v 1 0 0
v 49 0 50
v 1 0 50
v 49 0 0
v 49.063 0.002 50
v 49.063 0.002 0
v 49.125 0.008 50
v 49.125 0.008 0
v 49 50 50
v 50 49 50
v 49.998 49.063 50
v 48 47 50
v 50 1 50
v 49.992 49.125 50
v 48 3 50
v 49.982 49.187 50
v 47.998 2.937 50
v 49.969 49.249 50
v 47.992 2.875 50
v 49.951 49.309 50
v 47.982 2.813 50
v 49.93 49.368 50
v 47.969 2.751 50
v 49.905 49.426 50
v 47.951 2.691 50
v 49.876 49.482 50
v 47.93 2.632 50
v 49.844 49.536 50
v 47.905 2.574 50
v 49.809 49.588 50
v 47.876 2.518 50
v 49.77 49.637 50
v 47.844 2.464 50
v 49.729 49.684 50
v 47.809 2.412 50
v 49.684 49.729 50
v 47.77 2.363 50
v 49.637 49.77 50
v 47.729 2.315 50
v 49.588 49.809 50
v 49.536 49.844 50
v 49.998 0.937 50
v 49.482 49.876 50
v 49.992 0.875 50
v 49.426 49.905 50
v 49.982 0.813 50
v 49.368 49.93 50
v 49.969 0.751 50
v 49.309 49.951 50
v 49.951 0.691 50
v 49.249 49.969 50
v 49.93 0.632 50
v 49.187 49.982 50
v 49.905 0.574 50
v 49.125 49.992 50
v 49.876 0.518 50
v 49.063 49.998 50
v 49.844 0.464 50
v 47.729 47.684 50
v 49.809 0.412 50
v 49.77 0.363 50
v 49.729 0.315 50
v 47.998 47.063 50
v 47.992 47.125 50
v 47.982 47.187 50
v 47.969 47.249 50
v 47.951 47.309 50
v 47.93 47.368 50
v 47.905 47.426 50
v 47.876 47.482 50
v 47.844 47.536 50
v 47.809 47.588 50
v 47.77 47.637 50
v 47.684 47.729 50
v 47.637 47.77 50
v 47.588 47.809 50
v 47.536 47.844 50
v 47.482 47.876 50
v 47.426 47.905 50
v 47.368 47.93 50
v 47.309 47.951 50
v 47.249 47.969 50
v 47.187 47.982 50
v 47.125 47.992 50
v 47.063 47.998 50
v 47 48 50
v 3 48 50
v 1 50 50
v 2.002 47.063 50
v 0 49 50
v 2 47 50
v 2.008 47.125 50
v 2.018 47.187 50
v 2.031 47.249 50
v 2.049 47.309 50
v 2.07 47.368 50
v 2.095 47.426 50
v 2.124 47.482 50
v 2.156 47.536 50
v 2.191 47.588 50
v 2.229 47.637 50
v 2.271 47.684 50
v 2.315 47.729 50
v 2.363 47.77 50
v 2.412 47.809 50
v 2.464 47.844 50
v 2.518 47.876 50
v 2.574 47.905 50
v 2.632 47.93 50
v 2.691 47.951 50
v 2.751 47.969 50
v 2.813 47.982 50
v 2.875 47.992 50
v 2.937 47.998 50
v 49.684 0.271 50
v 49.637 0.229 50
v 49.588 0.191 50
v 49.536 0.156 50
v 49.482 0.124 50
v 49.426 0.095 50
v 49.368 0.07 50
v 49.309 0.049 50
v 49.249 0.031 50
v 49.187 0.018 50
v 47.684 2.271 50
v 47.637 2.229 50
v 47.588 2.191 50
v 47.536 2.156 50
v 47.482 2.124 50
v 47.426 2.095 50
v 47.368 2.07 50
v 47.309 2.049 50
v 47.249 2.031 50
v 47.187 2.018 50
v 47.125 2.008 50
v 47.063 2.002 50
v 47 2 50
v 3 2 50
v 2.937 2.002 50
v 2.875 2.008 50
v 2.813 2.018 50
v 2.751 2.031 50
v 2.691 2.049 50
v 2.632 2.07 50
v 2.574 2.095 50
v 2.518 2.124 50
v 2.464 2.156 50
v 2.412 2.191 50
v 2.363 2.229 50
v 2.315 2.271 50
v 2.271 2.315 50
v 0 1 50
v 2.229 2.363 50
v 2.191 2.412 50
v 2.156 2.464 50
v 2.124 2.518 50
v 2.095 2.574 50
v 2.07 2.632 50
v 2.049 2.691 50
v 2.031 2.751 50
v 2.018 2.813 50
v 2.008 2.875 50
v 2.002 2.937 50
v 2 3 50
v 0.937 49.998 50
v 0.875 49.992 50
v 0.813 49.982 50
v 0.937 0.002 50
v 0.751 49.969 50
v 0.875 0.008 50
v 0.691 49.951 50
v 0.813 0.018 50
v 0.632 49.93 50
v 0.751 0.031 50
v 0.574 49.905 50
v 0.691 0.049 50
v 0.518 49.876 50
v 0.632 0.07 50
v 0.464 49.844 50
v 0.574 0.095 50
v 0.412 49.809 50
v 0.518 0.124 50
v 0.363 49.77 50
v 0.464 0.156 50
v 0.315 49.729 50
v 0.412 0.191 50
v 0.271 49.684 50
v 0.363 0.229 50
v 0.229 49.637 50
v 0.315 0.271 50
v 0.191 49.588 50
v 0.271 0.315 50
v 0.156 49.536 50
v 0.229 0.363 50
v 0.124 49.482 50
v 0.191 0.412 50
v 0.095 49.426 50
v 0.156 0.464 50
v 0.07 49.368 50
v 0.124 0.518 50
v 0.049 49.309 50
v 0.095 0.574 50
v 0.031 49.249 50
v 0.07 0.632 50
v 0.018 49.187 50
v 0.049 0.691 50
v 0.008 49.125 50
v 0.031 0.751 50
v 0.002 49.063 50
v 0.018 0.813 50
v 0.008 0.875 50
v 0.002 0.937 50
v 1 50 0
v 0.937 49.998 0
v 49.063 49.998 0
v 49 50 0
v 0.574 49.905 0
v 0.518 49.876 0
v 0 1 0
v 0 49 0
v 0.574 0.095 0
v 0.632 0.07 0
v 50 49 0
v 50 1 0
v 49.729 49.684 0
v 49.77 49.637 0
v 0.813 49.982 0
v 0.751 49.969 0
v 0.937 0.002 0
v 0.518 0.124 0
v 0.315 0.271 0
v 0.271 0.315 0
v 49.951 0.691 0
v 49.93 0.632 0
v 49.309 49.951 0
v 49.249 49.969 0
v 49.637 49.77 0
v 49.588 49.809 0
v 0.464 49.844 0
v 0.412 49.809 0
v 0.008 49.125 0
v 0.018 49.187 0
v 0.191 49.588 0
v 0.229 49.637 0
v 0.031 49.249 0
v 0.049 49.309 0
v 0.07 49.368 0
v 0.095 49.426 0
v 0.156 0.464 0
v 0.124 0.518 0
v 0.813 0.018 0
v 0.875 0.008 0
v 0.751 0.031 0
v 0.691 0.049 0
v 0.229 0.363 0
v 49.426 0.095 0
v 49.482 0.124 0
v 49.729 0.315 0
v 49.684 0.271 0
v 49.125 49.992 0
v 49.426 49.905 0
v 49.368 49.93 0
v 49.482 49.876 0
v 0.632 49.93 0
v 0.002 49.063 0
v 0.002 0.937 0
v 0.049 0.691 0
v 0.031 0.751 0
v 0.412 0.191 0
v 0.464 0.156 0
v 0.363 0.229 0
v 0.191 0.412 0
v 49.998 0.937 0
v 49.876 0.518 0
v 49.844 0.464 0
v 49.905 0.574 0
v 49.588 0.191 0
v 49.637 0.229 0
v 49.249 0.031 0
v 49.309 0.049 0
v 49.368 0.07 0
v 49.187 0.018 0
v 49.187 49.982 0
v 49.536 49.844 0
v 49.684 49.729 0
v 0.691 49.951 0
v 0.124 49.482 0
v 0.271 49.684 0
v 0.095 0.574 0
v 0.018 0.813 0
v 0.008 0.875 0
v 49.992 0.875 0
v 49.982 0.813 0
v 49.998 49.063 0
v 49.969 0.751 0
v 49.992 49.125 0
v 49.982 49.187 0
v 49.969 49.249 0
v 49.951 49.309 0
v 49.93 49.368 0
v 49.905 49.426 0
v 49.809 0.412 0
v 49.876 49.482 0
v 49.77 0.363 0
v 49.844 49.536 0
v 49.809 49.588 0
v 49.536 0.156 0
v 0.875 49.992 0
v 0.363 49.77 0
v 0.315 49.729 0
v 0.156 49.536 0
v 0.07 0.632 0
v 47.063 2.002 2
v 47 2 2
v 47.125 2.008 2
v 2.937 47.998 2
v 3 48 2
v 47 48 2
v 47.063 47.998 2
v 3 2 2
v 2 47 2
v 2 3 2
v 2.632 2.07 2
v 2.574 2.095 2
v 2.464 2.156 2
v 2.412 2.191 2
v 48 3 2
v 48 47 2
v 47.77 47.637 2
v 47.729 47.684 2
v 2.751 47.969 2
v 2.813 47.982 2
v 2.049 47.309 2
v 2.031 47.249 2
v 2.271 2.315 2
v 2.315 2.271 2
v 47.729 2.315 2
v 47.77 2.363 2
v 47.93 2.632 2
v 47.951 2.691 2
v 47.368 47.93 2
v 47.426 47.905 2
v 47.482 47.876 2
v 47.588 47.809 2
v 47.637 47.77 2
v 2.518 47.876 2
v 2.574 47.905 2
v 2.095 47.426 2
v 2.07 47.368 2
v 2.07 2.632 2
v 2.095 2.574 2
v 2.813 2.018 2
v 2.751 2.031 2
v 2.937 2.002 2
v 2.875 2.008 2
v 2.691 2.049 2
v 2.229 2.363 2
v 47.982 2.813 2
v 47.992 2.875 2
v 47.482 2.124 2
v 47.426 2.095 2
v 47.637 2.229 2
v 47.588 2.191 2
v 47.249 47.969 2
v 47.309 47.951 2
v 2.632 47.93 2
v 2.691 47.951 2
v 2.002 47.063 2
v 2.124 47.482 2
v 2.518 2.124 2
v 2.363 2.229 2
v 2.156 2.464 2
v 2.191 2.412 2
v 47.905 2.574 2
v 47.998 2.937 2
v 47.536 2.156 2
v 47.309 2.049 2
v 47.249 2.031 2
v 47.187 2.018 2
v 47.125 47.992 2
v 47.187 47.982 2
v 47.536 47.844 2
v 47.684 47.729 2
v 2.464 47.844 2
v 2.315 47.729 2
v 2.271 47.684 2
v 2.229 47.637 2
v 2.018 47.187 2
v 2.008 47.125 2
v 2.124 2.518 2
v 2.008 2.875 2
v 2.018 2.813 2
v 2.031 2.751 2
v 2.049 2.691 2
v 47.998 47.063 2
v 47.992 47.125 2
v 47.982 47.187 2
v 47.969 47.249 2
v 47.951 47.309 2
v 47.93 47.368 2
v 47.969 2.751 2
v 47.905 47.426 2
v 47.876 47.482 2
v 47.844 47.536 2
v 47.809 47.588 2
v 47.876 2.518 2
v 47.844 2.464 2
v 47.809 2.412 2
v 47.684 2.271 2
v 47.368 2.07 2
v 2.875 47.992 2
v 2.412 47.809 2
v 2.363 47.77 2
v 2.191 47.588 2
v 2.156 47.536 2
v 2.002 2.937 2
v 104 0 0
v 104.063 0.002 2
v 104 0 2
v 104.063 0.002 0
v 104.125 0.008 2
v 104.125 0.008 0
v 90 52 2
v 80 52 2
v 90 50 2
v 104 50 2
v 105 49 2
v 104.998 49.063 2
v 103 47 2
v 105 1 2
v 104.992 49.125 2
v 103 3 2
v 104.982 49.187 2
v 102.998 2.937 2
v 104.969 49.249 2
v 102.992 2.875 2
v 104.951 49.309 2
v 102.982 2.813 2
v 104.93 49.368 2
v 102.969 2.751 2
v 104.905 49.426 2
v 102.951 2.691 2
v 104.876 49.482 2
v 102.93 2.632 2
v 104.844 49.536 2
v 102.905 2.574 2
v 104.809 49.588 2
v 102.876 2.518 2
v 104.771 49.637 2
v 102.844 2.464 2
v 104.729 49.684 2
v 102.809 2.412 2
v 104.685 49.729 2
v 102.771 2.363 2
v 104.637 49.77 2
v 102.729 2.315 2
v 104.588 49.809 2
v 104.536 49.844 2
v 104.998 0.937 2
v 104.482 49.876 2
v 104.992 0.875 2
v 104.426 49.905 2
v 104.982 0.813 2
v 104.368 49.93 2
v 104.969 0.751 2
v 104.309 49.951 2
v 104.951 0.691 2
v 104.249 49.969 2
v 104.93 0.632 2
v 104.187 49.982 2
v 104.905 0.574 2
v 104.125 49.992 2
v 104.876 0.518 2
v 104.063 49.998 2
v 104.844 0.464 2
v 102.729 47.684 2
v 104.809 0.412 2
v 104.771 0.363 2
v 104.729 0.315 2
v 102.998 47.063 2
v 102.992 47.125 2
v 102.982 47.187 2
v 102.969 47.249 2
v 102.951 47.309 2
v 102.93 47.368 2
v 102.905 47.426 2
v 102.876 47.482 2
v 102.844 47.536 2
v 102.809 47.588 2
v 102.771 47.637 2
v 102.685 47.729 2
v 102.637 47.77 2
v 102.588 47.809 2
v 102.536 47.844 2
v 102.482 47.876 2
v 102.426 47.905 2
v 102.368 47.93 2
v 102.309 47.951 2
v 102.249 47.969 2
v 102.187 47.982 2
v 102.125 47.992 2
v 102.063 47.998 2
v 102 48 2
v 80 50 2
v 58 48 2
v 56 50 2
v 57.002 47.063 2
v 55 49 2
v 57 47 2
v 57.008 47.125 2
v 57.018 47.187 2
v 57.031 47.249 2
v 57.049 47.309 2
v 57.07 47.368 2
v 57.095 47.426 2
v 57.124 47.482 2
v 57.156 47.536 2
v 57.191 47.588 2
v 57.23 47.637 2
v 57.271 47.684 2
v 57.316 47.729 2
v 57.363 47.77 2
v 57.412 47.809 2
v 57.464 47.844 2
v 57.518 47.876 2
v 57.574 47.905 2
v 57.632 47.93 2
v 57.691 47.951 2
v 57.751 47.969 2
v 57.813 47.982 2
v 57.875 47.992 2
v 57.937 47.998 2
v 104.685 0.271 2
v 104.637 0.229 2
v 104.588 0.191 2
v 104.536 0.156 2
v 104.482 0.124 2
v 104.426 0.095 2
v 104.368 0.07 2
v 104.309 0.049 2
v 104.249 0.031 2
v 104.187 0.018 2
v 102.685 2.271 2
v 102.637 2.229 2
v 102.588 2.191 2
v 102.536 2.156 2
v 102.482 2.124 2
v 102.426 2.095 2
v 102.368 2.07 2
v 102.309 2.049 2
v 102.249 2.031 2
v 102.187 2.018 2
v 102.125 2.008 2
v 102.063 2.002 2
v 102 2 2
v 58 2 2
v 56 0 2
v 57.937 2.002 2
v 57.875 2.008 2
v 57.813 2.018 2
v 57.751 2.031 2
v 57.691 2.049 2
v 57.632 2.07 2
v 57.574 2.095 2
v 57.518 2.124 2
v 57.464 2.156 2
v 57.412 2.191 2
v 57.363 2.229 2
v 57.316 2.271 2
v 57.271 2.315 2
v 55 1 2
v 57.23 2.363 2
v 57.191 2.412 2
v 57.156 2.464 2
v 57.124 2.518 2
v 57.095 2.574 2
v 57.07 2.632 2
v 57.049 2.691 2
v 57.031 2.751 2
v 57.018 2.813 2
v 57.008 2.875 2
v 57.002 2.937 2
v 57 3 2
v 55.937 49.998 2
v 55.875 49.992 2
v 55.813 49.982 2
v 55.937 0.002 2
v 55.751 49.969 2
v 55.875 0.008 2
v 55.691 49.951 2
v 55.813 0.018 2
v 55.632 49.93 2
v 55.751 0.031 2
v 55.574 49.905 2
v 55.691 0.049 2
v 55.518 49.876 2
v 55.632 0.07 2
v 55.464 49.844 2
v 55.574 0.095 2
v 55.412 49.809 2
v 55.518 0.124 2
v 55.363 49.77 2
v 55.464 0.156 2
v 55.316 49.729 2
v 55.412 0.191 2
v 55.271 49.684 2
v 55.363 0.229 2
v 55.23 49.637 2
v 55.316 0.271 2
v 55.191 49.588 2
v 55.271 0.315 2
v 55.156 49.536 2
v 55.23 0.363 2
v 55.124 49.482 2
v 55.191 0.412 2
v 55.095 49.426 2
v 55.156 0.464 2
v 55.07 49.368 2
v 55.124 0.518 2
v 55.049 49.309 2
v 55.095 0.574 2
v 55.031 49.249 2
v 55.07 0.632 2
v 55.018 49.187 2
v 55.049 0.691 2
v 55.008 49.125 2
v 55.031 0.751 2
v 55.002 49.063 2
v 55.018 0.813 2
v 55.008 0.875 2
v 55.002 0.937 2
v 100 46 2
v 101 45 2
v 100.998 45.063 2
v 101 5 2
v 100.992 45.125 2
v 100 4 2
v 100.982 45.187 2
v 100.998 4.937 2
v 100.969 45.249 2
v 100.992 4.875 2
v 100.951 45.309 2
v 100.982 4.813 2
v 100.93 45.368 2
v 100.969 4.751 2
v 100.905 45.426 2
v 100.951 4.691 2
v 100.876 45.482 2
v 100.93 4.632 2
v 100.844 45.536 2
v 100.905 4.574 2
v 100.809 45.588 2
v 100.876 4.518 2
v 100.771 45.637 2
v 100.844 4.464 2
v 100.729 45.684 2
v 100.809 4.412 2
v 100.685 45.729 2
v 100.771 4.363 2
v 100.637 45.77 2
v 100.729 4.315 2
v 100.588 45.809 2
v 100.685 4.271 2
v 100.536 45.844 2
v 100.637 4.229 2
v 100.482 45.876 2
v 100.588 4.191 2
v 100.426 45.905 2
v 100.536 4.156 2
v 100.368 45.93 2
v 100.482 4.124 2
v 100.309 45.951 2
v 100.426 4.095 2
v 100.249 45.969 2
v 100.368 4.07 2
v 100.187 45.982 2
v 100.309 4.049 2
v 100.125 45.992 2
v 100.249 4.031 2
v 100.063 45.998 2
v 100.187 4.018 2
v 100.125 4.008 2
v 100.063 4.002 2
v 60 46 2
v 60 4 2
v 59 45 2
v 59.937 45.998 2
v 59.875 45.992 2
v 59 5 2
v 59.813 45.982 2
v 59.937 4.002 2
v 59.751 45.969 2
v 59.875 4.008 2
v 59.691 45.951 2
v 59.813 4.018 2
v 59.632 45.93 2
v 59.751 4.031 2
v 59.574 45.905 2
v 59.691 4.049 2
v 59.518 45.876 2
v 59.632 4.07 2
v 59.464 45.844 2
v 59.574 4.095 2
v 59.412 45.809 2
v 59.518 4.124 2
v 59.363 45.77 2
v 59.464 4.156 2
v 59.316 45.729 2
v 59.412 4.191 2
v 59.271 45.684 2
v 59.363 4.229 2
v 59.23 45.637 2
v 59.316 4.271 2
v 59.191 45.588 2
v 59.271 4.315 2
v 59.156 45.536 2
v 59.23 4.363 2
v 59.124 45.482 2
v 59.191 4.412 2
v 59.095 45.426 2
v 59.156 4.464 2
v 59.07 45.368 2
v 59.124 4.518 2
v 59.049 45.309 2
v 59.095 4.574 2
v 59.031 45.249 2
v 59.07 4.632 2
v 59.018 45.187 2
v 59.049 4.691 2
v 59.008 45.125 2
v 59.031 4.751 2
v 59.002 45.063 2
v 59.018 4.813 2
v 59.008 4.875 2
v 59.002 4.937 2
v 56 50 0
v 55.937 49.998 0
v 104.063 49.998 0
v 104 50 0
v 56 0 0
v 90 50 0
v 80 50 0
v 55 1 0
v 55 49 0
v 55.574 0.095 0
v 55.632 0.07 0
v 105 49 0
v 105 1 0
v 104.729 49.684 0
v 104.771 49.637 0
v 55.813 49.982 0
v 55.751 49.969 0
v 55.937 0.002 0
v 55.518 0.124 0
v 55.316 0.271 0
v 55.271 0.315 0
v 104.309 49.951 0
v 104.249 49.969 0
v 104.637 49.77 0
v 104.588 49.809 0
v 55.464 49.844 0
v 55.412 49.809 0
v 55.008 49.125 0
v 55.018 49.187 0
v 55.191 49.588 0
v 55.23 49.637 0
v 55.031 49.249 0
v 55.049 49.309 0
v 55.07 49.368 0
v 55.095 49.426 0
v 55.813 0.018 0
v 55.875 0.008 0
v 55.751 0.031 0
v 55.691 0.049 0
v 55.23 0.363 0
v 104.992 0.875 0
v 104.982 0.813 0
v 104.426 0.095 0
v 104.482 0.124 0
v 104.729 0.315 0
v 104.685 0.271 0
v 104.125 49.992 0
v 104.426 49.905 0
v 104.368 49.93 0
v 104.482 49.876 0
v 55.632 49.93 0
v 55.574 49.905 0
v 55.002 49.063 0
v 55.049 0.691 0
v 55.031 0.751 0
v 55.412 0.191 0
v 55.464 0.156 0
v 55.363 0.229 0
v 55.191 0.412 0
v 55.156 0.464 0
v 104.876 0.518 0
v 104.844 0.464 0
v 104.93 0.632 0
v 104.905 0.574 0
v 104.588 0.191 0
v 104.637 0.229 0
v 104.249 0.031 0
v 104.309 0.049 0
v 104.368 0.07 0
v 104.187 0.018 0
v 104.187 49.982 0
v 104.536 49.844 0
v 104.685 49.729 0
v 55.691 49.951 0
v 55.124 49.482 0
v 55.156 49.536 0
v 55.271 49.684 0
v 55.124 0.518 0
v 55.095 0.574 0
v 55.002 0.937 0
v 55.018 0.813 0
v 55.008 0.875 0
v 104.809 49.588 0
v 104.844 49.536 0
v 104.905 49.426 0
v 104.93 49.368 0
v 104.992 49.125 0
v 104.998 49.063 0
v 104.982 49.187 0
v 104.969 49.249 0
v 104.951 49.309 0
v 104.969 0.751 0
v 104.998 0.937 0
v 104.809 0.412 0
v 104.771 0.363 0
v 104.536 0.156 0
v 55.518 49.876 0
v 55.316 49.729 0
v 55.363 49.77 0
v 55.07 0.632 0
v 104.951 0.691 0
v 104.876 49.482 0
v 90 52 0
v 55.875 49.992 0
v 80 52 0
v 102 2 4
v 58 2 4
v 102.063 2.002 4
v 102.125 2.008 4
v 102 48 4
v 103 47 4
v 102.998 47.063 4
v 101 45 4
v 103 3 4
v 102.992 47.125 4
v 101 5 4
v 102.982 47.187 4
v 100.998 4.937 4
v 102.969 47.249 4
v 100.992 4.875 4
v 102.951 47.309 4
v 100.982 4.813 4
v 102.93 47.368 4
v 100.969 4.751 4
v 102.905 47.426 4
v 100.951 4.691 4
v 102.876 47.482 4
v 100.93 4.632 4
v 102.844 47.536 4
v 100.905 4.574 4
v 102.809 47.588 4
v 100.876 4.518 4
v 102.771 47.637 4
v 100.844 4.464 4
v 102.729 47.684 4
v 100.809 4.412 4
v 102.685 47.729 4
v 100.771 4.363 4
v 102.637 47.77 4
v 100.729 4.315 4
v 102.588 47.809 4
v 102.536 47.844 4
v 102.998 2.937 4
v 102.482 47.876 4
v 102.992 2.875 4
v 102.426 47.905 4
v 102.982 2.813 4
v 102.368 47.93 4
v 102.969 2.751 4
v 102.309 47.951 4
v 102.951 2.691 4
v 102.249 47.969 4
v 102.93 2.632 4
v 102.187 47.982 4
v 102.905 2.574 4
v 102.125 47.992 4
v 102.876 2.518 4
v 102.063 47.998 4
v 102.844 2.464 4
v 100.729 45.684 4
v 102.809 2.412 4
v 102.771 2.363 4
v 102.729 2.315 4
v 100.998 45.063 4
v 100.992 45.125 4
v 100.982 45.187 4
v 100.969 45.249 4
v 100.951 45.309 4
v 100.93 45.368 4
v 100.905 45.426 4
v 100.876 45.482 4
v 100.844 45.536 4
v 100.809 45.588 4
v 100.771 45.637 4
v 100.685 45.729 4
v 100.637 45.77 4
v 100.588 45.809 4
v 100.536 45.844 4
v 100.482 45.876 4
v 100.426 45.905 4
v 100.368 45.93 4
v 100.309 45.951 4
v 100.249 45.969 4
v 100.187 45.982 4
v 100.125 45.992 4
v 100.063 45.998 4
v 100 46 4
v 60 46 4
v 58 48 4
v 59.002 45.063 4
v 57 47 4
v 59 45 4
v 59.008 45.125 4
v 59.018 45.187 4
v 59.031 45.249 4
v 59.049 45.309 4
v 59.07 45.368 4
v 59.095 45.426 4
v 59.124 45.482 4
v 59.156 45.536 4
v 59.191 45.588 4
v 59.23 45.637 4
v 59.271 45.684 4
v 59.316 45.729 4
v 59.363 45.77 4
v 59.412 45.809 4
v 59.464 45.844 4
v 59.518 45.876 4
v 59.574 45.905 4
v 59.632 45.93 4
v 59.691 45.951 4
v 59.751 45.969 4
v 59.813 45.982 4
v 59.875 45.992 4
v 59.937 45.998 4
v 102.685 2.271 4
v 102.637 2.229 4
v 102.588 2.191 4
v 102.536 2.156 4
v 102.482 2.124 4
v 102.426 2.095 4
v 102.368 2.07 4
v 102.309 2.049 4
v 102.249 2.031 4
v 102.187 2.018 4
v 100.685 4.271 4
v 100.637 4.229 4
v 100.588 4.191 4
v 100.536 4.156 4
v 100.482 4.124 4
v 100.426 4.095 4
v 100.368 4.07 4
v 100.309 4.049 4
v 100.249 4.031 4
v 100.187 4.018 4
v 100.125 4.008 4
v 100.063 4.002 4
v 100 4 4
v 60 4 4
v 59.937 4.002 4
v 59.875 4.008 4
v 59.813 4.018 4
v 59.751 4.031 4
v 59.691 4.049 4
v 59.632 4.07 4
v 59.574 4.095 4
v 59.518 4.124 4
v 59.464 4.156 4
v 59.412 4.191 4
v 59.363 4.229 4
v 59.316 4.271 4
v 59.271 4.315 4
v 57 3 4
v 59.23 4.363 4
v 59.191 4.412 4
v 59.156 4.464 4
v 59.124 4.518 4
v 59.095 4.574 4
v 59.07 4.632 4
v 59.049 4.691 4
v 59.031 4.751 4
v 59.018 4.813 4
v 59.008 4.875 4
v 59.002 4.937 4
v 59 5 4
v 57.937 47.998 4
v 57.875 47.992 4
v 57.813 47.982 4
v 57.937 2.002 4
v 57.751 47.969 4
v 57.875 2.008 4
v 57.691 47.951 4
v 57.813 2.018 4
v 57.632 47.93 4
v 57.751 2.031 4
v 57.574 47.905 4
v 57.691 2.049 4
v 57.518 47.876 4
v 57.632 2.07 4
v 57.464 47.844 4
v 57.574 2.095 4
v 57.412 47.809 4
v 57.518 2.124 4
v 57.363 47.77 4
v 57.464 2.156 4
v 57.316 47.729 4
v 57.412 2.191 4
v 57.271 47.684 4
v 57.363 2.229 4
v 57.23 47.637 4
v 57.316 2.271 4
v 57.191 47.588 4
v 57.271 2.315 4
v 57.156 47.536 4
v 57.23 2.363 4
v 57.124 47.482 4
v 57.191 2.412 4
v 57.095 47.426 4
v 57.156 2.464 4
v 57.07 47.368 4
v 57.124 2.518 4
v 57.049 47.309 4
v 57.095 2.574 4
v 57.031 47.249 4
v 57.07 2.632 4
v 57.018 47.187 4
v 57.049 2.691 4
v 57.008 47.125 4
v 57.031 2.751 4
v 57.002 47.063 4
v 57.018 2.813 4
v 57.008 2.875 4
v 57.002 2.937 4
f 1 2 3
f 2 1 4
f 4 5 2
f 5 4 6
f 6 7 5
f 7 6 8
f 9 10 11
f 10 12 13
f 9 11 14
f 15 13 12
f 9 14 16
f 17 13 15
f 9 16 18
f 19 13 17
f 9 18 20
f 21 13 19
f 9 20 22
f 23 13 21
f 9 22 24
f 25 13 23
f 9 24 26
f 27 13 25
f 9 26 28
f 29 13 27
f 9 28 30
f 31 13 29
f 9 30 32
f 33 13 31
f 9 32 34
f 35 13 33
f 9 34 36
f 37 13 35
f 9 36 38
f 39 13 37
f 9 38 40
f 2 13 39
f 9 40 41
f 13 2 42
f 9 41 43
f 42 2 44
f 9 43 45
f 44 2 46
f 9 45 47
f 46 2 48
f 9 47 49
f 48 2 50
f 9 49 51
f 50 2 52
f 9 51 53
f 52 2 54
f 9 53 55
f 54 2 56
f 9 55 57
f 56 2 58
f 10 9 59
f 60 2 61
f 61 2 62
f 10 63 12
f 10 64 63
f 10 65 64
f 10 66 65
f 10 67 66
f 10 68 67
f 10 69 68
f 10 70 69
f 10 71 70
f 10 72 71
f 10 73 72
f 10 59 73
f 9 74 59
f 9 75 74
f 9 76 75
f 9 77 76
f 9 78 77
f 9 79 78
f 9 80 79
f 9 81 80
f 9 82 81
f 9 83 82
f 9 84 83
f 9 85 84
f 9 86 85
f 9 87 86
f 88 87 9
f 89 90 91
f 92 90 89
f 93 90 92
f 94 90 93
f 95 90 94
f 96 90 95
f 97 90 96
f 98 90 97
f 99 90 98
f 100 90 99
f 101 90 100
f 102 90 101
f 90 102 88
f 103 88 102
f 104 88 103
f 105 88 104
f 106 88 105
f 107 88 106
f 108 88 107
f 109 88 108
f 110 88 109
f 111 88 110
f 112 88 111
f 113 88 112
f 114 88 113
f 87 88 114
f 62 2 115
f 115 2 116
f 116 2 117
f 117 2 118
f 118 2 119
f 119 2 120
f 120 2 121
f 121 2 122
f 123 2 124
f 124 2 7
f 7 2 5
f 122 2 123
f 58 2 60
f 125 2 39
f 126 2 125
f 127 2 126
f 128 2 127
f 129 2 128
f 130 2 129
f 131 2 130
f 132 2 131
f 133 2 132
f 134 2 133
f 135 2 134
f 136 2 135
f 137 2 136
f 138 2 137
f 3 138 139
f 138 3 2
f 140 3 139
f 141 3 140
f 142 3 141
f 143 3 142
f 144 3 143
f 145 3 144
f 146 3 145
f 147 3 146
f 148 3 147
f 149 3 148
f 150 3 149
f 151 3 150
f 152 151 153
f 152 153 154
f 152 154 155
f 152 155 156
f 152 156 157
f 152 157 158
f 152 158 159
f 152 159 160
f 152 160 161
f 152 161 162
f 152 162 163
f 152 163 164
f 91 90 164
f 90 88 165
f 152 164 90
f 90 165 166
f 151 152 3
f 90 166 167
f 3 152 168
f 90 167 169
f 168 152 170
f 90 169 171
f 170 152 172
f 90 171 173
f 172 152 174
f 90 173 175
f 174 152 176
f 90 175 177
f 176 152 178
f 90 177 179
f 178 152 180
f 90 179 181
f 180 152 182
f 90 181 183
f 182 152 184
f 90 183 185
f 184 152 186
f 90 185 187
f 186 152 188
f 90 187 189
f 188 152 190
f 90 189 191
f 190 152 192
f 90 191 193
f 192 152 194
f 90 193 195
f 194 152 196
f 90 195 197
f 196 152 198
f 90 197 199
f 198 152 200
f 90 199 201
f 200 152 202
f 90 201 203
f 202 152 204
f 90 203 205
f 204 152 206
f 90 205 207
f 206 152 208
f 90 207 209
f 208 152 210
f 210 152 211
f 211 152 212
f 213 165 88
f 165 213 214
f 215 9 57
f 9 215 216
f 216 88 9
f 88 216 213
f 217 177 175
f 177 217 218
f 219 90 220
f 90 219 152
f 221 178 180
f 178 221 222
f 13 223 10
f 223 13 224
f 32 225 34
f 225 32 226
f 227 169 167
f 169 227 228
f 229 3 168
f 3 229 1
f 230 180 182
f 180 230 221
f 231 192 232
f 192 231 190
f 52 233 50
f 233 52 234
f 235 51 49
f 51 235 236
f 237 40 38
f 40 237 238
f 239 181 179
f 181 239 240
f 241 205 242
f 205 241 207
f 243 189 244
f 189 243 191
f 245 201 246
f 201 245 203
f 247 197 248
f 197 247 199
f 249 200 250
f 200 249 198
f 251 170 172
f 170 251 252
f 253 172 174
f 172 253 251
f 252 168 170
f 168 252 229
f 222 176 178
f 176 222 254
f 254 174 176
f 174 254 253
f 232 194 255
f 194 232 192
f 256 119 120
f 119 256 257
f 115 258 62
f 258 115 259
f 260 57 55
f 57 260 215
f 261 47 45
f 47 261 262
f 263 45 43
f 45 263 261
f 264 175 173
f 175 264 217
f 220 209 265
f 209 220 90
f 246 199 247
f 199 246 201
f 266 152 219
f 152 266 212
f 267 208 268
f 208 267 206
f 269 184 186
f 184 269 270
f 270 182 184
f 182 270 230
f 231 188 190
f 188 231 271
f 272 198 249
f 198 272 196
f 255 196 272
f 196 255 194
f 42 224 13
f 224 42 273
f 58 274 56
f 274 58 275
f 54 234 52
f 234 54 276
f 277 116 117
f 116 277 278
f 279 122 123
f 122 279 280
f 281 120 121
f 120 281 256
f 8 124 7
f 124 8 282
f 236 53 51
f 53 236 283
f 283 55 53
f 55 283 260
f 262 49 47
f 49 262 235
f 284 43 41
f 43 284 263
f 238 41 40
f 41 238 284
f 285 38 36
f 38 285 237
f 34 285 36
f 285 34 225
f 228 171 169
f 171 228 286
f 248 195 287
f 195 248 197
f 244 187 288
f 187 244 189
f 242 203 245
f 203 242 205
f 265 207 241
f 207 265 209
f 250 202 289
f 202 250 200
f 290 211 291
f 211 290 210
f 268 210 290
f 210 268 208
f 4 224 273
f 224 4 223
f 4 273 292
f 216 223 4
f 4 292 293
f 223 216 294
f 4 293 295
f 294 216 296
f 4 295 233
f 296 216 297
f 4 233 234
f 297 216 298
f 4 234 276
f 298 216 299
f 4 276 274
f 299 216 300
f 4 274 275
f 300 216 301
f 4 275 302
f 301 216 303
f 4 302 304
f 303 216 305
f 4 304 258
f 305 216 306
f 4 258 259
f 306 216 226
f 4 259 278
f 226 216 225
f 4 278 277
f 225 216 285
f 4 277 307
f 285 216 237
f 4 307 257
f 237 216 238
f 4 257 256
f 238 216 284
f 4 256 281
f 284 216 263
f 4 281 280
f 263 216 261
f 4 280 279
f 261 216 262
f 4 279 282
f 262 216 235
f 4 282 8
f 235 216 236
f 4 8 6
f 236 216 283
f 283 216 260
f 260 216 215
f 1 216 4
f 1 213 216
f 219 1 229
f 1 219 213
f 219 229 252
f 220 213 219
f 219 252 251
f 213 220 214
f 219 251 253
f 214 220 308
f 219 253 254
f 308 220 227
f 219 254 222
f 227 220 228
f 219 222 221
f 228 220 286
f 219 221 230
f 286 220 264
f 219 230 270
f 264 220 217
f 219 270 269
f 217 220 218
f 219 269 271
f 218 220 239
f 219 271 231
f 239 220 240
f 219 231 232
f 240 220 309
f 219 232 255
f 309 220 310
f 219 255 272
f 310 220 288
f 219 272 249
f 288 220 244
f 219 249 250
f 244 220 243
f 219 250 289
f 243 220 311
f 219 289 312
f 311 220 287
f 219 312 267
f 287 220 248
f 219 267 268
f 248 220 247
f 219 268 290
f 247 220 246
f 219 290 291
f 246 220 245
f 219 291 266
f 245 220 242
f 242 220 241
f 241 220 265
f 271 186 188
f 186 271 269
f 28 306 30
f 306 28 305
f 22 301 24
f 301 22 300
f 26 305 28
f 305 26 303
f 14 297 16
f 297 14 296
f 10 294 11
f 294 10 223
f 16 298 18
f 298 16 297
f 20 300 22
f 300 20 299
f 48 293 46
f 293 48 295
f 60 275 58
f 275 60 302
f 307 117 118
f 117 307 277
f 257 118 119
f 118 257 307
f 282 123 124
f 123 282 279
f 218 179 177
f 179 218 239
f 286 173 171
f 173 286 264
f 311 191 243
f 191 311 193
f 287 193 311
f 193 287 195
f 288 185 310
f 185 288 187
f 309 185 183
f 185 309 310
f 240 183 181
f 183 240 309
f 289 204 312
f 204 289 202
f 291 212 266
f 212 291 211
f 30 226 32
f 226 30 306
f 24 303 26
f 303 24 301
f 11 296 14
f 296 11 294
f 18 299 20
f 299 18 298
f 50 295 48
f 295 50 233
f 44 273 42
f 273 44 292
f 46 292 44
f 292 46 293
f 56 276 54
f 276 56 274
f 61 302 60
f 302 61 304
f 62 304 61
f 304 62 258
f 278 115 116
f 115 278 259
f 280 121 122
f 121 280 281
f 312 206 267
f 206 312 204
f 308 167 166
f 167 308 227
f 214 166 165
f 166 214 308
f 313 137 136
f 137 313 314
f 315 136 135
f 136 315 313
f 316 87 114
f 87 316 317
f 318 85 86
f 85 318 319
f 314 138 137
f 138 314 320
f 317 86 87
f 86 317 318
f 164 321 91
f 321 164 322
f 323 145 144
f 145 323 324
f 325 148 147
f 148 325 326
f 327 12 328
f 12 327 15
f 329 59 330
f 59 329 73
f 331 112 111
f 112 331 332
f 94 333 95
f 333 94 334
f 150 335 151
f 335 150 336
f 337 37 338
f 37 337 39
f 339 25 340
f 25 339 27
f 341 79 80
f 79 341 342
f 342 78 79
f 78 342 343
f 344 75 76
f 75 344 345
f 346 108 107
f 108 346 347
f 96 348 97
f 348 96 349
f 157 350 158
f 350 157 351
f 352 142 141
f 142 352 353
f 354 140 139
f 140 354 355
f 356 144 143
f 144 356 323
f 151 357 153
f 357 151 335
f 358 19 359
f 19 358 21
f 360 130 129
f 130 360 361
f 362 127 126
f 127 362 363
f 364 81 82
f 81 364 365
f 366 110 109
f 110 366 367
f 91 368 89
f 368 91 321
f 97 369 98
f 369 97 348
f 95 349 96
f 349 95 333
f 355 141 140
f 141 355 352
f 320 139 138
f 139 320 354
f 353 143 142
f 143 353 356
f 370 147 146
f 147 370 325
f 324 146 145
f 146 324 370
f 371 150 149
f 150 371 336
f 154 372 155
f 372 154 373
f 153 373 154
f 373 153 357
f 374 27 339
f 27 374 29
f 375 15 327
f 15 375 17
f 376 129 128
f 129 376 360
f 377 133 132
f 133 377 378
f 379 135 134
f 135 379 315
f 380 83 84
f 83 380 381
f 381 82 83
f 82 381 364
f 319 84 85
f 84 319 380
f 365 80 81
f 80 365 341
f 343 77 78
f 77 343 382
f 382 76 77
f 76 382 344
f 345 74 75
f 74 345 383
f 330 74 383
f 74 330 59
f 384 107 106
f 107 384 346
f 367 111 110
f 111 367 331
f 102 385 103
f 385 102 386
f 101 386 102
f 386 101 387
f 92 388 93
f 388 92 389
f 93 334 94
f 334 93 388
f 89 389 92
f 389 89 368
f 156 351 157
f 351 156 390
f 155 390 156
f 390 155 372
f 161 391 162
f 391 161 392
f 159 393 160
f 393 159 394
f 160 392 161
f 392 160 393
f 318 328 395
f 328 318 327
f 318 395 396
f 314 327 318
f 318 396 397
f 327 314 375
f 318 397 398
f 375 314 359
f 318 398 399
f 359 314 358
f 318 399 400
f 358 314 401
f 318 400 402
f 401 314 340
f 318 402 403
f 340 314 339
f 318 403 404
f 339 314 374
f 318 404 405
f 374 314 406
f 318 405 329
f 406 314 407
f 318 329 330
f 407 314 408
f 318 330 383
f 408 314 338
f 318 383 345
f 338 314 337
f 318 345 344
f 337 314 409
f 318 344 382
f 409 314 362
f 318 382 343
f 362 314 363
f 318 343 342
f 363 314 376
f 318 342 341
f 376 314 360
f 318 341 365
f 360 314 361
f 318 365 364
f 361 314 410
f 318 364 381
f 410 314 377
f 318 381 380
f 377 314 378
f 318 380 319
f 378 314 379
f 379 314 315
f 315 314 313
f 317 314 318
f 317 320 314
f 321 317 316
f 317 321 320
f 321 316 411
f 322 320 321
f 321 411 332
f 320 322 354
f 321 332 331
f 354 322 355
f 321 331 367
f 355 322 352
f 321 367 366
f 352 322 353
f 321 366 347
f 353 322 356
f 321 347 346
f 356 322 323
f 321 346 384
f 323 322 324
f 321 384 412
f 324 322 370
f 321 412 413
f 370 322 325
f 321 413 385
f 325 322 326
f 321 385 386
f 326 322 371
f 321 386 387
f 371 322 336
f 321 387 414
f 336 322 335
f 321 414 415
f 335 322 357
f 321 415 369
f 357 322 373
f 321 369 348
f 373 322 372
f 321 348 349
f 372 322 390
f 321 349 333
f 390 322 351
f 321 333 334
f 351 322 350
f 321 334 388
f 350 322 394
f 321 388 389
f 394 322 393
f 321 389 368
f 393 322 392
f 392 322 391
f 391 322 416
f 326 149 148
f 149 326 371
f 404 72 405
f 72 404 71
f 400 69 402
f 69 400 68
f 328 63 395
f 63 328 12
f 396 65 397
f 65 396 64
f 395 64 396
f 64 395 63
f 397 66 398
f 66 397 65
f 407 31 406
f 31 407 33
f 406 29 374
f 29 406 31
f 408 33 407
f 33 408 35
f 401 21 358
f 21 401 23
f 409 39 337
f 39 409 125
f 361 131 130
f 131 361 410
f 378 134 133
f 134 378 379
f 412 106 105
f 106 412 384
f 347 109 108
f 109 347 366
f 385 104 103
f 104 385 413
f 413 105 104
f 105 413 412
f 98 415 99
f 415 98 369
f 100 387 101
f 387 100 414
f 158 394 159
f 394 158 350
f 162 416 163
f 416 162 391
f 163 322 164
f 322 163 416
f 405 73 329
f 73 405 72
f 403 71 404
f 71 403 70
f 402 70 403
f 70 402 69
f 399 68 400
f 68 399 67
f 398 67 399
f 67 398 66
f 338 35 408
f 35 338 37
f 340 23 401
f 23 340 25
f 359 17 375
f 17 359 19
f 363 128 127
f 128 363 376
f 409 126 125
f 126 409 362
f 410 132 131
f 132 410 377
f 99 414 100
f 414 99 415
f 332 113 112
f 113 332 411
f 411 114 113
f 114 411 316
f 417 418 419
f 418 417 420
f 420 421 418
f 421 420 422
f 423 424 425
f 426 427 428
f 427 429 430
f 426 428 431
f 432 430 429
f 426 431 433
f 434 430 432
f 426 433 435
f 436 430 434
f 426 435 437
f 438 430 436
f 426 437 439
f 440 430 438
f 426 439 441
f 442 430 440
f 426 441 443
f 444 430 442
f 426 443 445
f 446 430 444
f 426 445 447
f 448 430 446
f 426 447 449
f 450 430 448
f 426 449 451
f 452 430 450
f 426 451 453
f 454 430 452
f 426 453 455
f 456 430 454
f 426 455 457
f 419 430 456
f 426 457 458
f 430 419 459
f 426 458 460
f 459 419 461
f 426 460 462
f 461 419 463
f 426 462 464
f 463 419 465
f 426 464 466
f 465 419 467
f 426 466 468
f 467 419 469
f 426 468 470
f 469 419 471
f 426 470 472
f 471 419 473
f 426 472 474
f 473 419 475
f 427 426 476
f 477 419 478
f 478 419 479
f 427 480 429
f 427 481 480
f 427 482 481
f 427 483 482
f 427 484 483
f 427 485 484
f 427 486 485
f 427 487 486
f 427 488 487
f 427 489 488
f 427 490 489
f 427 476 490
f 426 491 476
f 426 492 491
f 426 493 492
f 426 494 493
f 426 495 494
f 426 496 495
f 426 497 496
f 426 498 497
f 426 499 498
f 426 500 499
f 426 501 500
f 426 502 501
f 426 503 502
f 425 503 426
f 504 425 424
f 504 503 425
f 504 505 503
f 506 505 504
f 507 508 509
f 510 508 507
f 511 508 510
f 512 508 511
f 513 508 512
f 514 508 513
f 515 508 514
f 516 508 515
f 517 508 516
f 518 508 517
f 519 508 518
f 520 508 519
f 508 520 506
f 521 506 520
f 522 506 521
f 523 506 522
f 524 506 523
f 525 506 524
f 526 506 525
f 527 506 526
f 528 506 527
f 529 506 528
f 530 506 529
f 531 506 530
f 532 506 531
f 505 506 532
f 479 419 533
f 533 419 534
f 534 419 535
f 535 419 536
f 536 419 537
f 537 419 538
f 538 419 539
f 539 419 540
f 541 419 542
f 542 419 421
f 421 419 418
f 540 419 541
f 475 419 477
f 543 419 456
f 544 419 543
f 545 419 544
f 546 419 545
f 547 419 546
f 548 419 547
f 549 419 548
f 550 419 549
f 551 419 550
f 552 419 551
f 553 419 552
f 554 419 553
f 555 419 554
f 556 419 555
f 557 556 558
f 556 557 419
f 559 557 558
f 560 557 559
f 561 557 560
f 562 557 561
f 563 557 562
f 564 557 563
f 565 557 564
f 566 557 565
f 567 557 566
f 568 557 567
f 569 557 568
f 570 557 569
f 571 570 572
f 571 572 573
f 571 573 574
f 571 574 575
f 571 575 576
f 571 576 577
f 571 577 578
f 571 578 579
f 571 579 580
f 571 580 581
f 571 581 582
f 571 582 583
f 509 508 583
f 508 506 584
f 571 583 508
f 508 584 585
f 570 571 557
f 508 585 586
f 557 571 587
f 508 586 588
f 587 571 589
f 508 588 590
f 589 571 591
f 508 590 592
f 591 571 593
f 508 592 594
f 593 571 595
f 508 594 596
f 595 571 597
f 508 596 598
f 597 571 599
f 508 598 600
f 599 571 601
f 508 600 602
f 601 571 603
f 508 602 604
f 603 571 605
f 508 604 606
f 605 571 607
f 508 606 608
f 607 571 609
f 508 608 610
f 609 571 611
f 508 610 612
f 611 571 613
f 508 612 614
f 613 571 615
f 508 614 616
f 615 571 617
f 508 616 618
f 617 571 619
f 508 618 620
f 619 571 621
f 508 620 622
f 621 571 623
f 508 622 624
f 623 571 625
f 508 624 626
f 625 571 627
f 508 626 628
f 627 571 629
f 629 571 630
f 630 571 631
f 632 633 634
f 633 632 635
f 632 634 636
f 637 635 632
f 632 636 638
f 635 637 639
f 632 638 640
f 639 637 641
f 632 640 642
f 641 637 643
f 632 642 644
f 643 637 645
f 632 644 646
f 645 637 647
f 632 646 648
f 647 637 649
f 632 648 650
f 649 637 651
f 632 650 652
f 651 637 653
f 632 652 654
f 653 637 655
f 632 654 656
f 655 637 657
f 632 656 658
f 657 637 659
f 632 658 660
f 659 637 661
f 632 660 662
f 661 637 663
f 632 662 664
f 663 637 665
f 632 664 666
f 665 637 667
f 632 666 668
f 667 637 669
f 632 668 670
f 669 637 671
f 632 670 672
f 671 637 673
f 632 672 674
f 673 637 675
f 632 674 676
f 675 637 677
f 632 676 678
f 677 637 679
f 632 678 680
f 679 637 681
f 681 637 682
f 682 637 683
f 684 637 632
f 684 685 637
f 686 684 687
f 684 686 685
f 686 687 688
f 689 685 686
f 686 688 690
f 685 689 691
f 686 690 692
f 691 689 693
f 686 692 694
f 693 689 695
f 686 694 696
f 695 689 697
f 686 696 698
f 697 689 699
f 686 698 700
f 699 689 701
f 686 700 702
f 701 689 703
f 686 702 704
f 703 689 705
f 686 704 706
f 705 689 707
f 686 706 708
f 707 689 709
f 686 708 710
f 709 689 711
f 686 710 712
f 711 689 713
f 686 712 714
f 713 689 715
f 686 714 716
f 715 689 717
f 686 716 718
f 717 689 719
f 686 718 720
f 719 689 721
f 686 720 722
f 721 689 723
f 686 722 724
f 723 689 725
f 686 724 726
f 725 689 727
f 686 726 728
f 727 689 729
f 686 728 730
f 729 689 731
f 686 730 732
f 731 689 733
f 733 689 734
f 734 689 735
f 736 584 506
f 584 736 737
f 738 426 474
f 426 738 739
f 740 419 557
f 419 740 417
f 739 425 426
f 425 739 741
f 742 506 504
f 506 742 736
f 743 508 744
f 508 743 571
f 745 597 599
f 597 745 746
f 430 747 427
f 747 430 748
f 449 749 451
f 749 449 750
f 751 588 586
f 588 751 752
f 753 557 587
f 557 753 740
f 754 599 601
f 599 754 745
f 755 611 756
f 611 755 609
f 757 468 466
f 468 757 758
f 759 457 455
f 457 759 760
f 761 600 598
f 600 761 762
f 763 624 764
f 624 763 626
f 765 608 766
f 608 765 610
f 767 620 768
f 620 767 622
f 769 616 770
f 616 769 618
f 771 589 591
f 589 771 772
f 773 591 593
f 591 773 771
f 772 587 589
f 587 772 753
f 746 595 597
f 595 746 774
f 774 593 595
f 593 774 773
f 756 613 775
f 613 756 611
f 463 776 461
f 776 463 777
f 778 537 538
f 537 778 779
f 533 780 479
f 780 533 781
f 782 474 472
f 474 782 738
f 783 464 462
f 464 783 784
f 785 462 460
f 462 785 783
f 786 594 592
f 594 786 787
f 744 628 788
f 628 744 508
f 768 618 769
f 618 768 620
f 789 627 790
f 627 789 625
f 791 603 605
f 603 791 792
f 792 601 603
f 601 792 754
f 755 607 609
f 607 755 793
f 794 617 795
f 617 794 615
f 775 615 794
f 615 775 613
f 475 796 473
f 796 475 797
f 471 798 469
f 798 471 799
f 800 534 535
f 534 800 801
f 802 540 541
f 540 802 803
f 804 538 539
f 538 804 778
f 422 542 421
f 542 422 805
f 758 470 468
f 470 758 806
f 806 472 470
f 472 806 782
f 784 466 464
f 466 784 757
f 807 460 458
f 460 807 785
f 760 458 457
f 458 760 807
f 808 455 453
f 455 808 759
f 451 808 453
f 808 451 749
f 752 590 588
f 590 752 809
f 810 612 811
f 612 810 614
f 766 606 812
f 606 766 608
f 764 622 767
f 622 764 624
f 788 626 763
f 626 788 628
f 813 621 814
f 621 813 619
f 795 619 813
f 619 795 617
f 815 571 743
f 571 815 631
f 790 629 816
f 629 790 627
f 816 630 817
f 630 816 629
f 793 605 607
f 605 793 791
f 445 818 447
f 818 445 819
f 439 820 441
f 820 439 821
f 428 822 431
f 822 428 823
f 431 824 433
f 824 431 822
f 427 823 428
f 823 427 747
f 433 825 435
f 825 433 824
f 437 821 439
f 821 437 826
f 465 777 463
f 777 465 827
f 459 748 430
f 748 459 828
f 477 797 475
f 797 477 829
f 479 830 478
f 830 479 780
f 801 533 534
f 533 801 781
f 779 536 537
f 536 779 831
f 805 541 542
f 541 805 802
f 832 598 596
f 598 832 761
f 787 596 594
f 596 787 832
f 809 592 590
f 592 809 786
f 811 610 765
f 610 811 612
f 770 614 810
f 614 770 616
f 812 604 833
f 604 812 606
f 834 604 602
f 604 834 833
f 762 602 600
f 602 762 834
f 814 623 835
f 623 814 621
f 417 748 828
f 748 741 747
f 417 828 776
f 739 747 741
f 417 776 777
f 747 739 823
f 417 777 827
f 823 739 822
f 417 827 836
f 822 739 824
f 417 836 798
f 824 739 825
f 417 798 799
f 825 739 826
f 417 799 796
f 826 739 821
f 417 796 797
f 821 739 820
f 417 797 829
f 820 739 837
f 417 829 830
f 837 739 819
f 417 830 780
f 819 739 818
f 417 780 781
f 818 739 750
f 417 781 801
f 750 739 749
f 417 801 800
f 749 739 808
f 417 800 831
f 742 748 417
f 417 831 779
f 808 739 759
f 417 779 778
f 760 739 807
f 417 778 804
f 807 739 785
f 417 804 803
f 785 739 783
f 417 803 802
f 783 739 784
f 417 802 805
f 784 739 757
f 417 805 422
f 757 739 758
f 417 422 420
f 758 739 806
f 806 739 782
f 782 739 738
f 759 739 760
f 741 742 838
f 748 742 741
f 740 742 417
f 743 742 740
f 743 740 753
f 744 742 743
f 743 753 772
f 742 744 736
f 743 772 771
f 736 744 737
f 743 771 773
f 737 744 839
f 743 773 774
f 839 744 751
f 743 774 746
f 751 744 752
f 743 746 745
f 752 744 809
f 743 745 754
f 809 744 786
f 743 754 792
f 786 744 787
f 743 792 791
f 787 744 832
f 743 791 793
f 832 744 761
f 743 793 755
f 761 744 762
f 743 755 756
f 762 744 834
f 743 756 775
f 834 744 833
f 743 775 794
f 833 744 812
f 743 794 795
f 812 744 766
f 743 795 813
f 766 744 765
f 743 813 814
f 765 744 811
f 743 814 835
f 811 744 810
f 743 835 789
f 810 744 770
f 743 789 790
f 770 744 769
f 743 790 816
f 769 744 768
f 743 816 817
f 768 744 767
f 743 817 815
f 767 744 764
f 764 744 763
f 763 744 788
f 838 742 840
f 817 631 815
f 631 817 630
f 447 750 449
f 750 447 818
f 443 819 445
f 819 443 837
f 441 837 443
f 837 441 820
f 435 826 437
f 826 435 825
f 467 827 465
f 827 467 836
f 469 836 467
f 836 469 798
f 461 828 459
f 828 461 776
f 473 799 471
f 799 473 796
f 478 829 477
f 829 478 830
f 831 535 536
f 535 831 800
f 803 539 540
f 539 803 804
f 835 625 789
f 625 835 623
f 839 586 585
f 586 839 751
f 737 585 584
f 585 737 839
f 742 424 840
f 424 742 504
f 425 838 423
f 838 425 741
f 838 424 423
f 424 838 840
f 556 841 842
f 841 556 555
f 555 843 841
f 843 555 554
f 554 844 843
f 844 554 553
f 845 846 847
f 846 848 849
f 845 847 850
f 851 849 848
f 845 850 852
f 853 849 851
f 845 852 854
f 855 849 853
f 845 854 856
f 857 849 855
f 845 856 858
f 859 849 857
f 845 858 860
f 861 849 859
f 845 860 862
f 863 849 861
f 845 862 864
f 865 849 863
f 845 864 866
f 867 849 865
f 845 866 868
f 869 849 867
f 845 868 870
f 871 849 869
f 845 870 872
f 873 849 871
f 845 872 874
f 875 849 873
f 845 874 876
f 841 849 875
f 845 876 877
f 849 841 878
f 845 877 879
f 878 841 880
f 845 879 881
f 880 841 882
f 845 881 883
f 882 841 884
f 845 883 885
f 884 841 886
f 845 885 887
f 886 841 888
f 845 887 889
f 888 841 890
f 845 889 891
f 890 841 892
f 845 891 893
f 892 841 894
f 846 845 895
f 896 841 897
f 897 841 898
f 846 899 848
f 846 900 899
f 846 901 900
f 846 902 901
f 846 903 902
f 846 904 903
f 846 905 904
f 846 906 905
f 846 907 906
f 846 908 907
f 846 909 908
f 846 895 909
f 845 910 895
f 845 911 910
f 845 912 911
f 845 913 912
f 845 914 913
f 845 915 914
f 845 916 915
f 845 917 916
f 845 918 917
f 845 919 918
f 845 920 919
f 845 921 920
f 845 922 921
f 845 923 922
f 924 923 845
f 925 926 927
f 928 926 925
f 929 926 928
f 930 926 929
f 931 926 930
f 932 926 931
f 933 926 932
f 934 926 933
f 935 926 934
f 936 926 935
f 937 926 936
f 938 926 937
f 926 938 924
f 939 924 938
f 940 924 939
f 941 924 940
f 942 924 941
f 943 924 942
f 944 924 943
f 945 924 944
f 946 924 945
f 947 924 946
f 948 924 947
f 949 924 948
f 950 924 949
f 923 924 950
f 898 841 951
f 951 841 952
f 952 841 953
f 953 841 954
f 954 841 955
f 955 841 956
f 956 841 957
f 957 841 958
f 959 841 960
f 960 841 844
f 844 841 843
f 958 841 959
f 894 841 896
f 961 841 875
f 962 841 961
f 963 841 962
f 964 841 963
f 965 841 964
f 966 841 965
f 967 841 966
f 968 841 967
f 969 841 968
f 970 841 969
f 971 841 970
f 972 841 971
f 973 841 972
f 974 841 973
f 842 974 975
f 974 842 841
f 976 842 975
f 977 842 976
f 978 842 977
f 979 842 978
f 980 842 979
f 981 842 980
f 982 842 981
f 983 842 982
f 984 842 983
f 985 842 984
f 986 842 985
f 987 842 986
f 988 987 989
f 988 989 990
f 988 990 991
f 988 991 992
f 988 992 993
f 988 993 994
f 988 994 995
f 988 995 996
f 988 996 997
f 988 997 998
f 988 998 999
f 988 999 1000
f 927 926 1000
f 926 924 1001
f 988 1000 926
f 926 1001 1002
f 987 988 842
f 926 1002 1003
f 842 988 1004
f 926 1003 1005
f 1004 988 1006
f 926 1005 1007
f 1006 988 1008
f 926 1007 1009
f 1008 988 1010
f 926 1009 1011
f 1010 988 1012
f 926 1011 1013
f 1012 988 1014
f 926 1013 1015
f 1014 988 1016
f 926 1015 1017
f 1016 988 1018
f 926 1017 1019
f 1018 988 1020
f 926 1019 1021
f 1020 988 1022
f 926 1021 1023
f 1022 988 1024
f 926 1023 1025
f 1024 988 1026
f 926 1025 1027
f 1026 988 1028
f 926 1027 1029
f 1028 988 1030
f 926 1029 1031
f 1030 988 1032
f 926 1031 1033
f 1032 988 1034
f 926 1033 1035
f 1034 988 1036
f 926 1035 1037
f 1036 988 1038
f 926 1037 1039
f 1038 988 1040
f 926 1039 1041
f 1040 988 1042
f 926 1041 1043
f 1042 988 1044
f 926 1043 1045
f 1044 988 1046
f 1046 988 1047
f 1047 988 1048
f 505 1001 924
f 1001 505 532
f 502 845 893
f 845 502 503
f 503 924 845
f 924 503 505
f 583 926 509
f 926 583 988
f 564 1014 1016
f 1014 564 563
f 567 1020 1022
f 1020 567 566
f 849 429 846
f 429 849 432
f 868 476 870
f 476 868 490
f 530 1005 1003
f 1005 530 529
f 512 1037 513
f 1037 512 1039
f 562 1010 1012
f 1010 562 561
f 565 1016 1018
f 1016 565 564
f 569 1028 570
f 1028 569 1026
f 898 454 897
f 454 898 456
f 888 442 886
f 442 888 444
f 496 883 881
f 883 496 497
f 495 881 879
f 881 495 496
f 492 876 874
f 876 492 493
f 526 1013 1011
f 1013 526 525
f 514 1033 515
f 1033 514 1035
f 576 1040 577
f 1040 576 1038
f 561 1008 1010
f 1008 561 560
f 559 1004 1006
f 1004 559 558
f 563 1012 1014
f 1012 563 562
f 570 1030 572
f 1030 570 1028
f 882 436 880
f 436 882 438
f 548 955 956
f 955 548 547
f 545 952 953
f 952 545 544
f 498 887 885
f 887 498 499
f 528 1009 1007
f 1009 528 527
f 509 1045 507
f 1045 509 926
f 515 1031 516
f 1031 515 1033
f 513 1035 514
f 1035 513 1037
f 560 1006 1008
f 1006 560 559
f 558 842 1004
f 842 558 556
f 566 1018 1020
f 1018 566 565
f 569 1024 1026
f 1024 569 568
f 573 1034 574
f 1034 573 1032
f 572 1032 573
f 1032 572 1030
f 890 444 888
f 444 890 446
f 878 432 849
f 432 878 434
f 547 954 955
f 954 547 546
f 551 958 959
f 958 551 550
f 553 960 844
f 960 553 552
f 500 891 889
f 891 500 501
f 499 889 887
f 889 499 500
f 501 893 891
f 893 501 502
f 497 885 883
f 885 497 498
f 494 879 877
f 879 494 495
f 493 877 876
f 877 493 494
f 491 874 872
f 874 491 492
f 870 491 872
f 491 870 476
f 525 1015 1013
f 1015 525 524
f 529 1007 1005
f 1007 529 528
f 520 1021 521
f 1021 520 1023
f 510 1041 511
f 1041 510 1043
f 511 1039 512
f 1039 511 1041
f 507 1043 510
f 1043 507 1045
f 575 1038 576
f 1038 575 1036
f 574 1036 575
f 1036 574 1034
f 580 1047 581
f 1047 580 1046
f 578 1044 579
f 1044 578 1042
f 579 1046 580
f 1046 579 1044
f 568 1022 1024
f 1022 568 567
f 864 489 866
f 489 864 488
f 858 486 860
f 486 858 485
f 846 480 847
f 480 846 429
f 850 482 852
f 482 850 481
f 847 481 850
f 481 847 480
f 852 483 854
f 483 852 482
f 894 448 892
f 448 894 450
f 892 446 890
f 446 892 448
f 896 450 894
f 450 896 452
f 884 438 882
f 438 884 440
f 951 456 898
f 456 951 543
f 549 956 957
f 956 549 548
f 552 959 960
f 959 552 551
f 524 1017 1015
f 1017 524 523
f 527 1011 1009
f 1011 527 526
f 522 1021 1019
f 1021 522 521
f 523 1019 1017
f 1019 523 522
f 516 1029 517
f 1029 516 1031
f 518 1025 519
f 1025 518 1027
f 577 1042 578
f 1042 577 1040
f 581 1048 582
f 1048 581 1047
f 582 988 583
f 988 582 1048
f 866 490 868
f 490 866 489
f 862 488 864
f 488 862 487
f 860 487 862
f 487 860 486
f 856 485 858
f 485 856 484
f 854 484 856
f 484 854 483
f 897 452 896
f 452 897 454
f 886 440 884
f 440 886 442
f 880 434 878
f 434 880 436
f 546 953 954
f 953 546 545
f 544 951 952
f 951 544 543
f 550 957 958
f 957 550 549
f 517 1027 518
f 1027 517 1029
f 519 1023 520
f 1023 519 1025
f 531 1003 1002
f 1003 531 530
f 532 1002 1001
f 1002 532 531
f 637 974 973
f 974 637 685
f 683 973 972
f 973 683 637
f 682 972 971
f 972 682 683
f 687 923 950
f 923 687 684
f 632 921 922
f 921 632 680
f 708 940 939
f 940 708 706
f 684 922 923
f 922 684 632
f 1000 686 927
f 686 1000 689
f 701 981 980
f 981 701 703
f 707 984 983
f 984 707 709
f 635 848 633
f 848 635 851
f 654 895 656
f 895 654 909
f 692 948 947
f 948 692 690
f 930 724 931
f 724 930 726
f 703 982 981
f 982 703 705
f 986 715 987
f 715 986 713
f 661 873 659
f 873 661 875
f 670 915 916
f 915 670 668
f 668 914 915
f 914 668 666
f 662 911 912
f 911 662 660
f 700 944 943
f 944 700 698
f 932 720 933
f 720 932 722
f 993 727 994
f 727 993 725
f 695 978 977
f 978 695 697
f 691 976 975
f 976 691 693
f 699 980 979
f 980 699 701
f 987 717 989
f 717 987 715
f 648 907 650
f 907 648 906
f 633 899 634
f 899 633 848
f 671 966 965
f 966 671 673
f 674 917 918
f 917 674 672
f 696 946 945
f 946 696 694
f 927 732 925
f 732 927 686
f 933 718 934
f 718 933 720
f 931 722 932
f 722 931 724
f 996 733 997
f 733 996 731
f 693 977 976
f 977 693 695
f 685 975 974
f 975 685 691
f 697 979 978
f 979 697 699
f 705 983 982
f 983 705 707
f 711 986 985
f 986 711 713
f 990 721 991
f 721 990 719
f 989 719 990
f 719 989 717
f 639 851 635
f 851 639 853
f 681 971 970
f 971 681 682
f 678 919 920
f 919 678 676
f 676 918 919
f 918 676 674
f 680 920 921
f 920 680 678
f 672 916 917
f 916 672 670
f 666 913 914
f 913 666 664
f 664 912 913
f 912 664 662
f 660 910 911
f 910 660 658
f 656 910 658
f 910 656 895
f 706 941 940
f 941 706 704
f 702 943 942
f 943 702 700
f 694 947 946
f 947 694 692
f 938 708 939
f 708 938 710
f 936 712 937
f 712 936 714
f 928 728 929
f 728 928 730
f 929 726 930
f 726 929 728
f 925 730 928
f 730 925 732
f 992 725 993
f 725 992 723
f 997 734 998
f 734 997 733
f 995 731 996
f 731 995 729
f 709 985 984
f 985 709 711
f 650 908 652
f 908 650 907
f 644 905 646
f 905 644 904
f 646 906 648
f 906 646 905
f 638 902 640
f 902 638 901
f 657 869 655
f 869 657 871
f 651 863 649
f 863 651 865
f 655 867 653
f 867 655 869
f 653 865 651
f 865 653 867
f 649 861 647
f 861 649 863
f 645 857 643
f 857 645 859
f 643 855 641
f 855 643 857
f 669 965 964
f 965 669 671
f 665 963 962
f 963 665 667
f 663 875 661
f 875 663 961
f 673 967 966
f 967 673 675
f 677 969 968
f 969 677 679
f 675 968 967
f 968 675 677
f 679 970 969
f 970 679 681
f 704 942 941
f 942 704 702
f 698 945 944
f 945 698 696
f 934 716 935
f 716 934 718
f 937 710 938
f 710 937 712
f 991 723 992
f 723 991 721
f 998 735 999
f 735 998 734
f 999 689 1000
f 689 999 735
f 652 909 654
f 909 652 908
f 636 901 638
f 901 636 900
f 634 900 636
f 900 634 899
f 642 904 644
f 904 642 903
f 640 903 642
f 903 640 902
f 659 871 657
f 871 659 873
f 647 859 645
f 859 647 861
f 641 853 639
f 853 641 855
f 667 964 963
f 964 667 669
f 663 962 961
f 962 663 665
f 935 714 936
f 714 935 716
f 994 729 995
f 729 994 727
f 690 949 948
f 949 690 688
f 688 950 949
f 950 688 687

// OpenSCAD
$fn = 100;
w = 50;
l = 50;
h = 50;
wall_thickness = 2;
lid_thickness = 4;
lid_clearance = 0;
rad = 1;

// Main box body
module outer_rec() {
    linear_extrude(height = h)
    offset(r=rad) offset(delta = -1*rad) square([w, l]);
}

module inner_rec() {
    linear_extrude(height = h)
    offset(r=rad) offset(delta = -1* rad) // round the corners
		square([w - (wall_thickness*2) , l - (wall_thickness*2) ]);
}
// Lid top
module top_l() {
    linear_extrude(height = lid_thickness/2)
    offset(r=rad) offset(delta = -1*rad) square([w, l]);
    translate([w*.5, l, 0])
    cube([10, 2, lid_thickness/2]);
}
// Lid bottom
module bottom_l() {
    difference() { // hollow out the lid bottom
        linear_extrude(height = lid_thickness/2)
        offset(r=rad) offset(delta = -1* rad) // round the corners
			square([(w - (wall_thickness*2))- lid_clearance , (l - (wall_thickness*2))-lid_clearance ]);
        translate([wall_thickness, wall_thickness, 0])
        linear_extrude(height = (lid_thickness/2)+1)
        offset(r=rad) offset(delta = -1* rad) square([(w - (wall_thickness*4)) , (l - (wall_thickness*4))]);
    }
}

// Hollow out the main box body
difference () {
outer_rec();
translate([wall_thickness,  wall_thickness, wall_thickness])
inner_rec();
}
// Create the lid and put it on the side
translate([w*1.1, 0, 0])
{
top_l();
translate([wall_thickness, wall_thickness, lid_thickness/2])
bottom_l();
}
